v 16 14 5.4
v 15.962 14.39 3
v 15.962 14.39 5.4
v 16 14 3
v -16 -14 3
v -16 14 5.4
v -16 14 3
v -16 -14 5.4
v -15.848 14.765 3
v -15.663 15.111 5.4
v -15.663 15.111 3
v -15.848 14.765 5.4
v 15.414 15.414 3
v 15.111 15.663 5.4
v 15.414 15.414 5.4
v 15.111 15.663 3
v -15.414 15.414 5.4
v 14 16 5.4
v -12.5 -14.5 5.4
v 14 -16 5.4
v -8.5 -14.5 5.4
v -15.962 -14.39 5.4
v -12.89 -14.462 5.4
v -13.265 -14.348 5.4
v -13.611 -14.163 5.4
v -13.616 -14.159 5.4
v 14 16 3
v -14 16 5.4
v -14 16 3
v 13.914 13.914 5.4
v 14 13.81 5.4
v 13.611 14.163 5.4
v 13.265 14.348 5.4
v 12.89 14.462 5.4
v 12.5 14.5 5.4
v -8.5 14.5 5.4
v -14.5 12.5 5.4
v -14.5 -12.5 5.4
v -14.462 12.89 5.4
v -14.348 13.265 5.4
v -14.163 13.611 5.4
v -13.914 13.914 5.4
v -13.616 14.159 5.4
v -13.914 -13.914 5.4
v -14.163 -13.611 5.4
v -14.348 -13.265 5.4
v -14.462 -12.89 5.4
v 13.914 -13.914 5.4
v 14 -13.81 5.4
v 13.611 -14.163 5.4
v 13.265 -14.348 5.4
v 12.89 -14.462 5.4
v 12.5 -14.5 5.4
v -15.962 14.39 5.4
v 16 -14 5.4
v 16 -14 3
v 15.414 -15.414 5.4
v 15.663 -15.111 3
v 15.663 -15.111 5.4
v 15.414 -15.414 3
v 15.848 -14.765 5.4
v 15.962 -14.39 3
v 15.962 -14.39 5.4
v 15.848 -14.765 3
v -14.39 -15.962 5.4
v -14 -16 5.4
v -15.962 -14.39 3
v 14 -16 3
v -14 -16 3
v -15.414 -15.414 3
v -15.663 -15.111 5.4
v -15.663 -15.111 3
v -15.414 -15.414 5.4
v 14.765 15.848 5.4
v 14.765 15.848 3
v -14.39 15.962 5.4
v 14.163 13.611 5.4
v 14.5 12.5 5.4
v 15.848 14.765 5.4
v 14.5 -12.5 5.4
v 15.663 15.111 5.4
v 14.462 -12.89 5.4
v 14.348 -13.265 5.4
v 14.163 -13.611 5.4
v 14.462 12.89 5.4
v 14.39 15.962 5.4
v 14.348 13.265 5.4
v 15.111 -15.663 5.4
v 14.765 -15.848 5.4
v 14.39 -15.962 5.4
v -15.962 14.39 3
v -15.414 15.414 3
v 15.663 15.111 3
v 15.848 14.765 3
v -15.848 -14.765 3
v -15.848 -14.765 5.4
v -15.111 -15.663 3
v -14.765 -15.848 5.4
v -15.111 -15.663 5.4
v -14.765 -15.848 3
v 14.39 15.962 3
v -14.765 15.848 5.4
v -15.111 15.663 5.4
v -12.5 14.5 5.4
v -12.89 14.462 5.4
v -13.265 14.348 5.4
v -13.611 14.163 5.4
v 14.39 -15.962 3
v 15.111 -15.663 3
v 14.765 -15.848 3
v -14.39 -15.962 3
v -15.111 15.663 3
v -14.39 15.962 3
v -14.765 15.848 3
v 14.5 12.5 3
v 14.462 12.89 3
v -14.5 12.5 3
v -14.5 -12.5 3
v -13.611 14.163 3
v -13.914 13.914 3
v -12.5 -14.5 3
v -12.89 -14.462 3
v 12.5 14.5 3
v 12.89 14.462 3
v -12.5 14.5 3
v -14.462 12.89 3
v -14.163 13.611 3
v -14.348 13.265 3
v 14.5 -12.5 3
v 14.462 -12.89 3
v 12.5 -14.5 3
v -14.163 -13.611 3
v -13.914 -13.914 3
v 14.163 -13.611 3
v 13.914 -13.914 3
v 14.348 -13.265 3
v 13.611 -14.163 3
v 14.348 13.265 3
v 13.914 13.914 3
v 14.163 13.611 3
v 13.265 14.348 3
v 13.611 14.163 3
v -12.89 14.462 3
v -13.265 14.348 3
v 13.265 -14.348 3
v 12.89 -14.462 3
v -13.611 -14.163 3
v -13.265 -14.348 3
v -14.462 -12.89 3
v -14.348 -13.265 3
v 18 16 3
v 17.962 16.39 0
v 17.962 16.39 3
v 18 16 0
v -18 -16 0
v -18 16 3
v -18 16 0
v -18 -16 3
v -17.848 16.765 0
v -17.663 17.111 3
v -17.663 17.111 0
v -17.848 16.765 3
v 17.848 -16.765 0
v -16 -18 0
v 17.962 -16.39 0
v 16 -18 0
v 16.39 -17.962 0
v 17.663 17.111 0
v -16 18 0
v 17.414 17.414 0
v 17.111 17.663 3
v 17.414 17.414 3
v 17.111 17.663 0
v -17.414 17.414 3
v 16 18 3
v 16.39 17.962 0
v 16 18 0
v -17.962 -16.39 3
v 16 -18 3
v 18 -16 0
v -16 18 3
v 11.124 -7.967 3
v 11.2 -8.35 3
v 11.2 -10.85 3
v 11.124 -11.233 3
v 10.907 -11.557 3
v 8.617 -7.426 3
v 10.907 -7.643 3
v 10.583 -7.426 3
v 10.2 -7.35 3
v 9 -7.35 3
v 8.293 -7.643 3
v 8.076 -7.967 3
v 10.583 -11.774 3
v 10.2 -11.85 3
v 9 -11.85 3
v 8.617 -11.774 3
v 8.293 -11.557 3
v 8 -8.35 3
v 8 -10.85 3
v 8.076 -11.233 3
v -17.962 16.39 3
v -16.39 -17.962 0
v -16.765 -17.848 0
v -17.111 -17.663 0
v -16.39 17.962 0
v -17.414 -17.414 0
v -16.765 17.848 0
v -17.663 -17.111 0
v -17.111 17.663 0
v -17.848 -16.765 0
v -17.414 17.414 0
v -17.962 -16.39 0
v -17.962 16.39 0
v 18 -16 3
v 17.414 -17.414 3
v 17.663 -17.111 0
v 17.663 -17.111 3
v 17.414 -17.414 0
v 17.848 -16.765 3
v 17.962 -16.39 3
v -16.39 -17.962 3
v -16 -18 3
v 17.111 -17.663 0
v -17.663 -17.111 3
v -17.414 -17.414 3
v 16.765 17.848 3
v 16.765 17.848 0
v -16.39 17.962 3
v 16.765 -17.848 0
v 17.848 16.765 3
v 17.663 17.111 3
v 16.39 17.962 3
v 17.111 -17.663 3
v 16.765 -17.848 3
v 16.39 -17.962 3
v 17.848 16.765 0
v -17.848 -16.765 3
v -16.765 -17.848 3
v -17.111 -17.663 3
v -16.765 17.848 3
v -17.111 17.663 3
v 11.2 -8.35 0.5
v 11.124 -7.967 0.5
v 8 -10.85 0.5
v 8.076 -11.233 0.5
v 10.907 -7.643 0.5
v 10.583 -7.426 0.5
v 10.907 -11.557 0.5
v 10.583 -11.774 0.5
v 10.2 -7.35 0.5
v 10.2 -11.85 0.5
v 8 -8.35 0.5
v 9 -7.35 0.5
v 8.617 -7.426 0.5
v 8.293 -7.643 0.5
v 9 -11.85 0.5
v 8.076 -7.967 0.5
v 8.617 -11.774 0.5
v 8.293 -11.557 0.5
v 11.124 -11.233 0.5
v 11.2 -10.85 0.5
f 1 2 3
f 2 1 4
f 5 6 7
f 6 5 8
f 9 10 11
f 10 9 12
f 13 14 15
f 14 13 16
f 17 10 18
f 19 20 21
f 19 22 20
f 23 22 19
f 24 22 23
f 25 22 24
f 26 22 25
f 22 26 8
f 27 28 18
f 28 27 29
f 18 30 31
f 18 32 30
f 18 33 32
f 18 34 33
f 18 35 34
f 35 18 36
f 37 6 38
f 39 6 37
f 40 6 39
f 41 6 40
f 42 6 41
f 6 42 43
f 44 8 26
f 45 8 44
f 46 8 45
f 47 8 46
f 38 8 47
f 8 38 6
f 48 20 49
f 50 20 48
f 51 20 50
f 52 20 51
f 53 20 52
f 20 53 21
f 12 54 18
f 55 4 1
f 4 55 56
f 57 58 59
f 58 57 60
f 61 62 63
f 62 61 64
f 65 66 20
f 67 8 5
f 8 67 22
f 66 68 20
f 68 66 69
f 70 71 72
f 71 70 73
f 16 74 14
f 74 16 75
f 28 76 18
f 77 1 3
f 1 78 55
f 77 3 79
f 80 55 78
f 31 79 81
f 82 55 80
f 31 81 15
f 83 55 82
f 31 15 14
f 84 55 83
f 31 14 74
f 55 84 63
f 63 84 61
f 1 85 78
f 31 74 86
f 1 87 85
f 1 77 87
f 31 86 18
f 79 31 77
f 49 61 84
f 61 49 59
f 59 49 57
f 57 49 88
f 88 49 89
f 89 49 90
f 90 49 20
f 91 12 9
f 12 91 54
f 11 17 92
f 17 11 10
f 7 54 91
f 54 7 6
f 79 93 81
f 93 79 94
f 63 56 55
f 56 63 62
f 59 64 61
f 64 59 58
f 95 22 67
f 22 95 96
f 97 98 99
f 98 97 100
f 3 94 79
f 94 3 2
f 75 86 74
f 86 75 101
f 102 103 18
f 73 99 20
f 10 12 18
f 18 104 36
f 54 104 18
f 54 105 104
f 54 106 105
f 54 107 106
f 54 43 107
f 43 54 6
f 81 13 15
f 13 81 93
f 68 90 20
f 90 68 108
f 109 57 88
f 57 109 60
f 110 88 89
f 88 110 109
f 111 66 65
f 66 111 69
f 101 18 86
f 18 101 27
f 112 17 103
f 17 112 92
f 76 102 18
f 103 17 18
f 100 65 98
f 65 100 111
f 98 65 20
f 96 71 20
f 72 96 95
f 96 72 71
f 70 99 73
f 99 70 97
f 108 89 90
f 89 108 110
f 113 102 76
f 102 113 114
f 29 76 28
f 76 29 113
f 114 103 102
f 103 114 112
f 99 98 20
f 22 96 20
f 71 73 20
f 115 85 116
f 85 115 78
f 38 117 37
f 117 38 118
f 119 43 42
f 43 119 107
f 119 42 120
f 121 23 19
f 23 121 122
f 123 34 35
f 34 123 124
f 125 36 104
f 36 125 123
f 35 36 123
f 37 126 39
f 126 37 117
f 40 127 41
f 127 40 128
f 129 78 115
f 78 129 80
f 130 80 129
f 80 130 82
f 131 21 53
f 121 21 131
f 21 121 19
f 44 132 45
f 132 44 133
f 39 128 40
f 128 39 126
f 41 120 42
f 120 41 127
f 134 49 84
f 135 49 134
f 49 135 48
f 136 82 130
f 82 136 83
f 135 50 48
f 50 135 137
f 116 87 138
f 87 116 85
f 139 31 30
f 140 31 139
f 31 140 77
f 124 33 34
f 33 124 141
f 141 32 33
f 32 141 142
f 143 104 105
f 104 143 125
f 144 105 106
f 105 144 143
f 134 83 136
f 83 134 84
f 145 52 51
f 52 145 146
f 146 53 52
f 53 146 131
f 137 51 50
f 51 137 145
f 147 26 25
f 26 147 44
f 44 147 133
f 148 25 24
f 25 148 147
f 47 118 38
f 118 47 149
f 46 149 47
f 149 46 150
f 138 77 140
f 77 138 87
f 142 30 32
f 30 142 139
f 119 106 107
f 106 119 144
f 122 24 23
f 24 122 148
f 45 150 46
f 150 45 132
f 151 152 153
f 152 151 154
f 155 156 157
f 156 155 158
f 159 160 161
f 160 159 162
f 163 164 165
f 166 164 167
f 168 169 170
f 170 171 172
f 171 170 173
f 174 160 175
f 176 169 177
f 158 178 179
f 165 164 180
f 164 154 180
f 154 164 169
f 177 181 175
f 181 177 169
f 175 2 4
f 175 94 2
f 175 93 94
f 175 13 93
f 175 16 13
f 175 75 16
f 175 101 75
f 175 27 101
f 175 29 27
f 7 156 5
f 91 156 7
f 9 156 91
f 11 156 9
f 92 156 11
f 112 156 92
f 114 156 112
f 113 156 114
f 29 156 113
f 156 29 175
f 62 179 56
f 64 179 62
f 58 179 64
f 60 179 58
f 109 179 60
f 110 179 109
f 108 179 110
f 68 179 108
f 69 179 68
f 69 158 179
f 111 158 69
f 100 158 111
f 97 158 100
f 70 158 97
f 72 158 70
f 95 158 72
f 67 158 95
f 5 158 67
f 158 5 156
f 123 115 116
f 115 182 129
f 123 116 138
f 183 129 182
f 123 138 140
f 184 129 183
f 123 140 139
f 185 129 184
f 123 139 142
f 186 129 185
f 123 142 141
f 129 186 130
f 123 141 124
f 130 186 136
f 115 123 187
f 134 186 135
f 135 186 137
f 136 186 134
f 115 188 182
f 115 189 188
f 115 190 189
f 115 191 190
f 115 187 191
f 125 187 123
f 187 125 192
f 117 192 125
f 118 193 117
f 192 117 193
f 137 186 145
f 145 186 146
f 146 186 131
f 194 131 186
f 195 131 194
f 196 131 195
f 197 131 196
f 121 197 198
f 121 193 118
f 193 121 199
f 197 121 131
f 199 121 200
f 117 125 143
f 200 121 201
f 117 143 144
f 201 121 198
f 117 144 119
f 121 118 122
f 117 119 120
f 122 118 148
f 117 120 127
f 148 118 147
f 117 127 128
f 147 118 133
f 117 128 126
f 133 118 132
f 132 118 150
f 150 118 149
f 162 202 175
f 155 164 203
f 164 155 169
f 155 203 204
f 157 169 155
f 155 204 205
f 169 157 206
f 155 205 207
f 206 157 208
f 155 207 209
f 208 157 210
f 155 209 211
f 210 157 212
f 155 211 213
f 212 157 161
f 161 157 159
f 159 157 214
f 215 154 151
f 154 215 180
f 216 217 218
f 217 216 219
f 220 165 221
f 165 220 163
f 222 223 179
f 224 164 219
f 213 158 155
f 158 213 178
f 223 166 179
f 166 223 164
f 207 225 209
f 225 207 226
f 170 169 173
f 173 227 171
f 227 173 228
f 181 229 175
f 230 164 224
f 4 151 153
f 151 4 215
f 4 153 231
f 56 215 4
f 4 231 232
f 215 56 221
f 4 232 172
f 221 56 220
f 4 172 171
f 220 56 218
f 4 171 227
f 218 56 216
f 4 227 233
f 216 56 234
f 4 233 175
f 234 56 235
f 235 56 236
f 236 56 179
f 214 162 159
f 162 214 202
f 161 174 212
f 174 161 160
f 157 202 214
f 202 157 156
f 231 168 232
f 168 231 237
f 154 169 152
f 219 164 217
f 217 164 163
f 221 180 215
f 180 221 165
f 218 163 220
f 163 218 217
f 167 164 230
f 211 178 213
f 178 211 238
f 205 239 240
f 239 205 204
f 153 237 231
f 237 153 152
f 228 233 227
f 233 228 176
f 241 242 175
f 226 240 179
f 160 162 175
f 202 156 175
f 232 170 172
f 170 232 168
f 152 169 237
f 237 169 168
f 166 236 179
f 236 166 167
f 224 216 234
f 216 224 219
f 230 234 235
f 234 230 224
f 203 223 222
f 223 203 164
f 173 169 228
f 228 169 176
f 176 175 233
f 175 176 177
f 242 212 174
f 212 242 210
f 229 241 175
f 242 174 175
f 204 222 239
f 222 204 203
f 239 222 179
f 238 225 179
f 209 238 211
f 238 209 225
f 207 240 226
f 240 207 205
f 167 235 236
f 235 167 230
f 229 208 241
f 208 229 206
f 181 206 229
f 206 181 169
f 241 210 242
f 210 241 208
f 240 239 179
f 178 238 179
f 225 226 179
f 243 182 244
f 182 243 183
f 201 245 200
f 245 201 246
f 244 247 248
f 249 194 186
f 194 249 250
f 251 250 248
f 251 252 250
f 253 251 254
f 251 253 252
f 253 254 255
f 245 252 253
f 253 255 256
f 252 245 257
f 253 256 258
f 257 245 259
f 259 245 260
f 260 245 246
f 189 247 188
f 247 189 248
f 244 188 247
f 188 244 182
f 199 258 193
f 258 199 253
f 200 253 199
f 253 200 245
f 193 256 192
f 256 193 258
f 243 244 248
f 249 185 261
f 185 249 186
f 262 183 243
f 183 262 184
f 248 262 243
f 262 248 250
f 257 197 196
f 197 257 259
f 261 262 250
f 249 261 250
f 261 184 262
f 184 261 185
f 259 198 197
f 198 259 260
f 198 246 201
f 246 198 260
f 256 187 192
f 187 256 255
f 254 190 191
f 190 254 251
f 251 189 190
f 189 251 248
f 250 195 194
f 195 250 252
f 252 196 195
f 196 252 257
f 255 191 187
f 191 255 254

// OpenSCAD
// file: ../speaker_stand.scad
//
// Speaker Stand
//
// by Yasuhiro Wabiko
//
// This work is licensed under a Creative Commons Attribution 4.0 International License.
// https://creativecommons.org/licenses/by/4.0/
//
use <prim.scad>

default_stand_z =40;
default_base_x = 36;
default_base_y = 36;
default_base_z = 4;
default_base_r = 2;
default_pole_r = 4; // pole body radius
default_pole_z = 36;
default_pole_rr = 1; // pole corner radius
default_joint_z = 2;
default_joint_extra_z = 0;
default_joint_r = 3;


WELDING = 0.1;

// render target; this is meant to be overriden by Makefile
TARGET="default";

//
// top level logic
//
speaker_stand_main();

module speaker_stand_main(target=TARGET){
    
    if (target == "default") {
        speaker_stand(stand_z=40, base_x=30, base_y=30, pole_r=8);
    }

    if (target == "ce32a") {
        speaker_stand(stand_z=40, base_x=(36-2)*0.8, base_y=(36-2)*0.8, pole_r=4);
    }

    if (target == "ce32a_type2") {
        speaker_stand(stand_z=40, base_x=(33.2-2)*0.8, base_y=(33.2-2)*0.8, pole_r=4);
    }

    if (target == "b1s") {
        speaker_stand(stand_z=40, base_x=(40-2)*0.8, base_y=(40-2)*0.8, pole_r=4);
    }

    if (target == "ce32a_tallboy") {
        speaker_stand(stand_z=40, base_z=0, pole_r=18, base_x=32*0.8, base_y=32*0.8);
    }

    if (target == "b1s_tallboy") {
        speaker_stand(stand_z=40, base_x=(40-2)*0.8, base_y=(40-2)*0.8, pole_r=4);
    }

}

// [Public]
// A speaker stand.
//
// stand_z = total height (= base height + pole height) i.e how high the speaker is put from the ground.
// (base_x, base_y, base_z, base_r) = stand base dimension
// (joint_z, joint_r) = joint configuration
// pole_r = pole radius
//
// NOTE: pole height is generated by total height - base_height.
module speaker_stand(stand_z = default_stand_z,
                     base_x = default_base_x,
                     base_y = default_base_y,
                     base_z = default_base_z,
                     base_r = default_base_r,
                     joint_r = default_joint_r,
                     joint_z = default_joint_z,
                     pole_r = default_pole_r,
                     pole_rr = default_pole_rr) {

    pole_z = stand_z-base_z;

    speaker_stand_unit(stand_z = stand_z,
                       base_x = base_x,
                       base_y = base_y,
                       base_z = base_z,
                       base_r = base_r,
                       joint_r = joint_r,
                       joint_z = joint_z,
                       pole_r = pole_r,
                       pole_z = pole_z,
                       pole_rr = default_pole_rr );
}

// (for testing) when you want to override design parameters in detail
module speaker_stand_unit(stand_z = default_stand_z,
                          base_x = default_base_x,
                          base_y = default_base_y,
                          base_z = default_base_z,
                          base_r = default_base_r,
                          joint_r = default_joint_r,
                          joint_z = default_joint_z,
                          joint_extra_z  = default_joint_extra_z,
                          pole_r = default_pole_r,
                          pole_z = default_pole_z,
                          pole_rr = default_pole_rr,
                          joint_fn = 32,
                          pole_fn = 64,
                          base_fn = 64,
                          clip_z = 0.6) {
    clip_r = joint_r;
    
    translate([0, 0, 0]) {
        // base plate
        translate([0, 0, base_z/2]) {
            prim_round_zplate0(base_x, base_y, base_z, base_r, base_fn);
        }

        translate([0, 0, pole_z/2]) {
            difference() {
                union() {
                    // pole (inner joint)
                    translate([0, 0, pole_z/2+joint_z/2-WELDING+clip_z/2]) {
                        cylinder(r = joint_r, $fn = joint_fn, h = joint_z+WELDING+clip_z, center=true);
                    }

                    // clip
                    translate([0, 0, pole_z/2+joint_z+clip_z/2]) {
                        minkowski() {
                            cylinder(r = clip_r, $fn = joint_fn, h = 0.2, center=true);
                            sphere(r=0.2, $fn=32);
                        }
                    }
                }
                union() {
                    // slits for easier joint 
                    translate([0, 0, pole_z/2]) {
                        for (i=[0:1:7]) {
                            rotate([0,0,45*i]) {
                                cube([8, 0.4, joint_z*6], center=true);
                            }
                        }
                    }

                    // pole (empty inside)
                    translate([0, 0, pole_z/2+joint_z/2-WELDING+clip_z/2]) {
                        //    cylinder(r = joint_r-0.5, $fn = joint_fn, h = joint_z+WELDING*4+clip_z, center=true);
                    }
                }
            } // difference

            // pole (outer)
            translate([0, 0, base_z/2-WELDING]) {
                //cylinder(r = pole_r, $fn = pole_fn, h = pole_z-base_z+WELDING, center=true);
                prim_round_zplate0(pole_r*2, pole_r*2, pole_z-base_z+WELDING, pole_rr, 32);
            }

            // pole (joint's inner stuffing for more strength)
            translate([0, 0, pole_z/2+joint_z/2-WELDING+clip_z/2]) {
                cylinder(r = clip_r-1, $fn = joint_fn, h = joint_z+WELDING+clip_z, center=true);
            }
        }
    }
}
// main file
use <../CE32A_Rev1.scad>
rotate([0,-90,0])
ce32a_unit_lid_only(40,  36, 36, lid_thick=3, with_hole=1);
